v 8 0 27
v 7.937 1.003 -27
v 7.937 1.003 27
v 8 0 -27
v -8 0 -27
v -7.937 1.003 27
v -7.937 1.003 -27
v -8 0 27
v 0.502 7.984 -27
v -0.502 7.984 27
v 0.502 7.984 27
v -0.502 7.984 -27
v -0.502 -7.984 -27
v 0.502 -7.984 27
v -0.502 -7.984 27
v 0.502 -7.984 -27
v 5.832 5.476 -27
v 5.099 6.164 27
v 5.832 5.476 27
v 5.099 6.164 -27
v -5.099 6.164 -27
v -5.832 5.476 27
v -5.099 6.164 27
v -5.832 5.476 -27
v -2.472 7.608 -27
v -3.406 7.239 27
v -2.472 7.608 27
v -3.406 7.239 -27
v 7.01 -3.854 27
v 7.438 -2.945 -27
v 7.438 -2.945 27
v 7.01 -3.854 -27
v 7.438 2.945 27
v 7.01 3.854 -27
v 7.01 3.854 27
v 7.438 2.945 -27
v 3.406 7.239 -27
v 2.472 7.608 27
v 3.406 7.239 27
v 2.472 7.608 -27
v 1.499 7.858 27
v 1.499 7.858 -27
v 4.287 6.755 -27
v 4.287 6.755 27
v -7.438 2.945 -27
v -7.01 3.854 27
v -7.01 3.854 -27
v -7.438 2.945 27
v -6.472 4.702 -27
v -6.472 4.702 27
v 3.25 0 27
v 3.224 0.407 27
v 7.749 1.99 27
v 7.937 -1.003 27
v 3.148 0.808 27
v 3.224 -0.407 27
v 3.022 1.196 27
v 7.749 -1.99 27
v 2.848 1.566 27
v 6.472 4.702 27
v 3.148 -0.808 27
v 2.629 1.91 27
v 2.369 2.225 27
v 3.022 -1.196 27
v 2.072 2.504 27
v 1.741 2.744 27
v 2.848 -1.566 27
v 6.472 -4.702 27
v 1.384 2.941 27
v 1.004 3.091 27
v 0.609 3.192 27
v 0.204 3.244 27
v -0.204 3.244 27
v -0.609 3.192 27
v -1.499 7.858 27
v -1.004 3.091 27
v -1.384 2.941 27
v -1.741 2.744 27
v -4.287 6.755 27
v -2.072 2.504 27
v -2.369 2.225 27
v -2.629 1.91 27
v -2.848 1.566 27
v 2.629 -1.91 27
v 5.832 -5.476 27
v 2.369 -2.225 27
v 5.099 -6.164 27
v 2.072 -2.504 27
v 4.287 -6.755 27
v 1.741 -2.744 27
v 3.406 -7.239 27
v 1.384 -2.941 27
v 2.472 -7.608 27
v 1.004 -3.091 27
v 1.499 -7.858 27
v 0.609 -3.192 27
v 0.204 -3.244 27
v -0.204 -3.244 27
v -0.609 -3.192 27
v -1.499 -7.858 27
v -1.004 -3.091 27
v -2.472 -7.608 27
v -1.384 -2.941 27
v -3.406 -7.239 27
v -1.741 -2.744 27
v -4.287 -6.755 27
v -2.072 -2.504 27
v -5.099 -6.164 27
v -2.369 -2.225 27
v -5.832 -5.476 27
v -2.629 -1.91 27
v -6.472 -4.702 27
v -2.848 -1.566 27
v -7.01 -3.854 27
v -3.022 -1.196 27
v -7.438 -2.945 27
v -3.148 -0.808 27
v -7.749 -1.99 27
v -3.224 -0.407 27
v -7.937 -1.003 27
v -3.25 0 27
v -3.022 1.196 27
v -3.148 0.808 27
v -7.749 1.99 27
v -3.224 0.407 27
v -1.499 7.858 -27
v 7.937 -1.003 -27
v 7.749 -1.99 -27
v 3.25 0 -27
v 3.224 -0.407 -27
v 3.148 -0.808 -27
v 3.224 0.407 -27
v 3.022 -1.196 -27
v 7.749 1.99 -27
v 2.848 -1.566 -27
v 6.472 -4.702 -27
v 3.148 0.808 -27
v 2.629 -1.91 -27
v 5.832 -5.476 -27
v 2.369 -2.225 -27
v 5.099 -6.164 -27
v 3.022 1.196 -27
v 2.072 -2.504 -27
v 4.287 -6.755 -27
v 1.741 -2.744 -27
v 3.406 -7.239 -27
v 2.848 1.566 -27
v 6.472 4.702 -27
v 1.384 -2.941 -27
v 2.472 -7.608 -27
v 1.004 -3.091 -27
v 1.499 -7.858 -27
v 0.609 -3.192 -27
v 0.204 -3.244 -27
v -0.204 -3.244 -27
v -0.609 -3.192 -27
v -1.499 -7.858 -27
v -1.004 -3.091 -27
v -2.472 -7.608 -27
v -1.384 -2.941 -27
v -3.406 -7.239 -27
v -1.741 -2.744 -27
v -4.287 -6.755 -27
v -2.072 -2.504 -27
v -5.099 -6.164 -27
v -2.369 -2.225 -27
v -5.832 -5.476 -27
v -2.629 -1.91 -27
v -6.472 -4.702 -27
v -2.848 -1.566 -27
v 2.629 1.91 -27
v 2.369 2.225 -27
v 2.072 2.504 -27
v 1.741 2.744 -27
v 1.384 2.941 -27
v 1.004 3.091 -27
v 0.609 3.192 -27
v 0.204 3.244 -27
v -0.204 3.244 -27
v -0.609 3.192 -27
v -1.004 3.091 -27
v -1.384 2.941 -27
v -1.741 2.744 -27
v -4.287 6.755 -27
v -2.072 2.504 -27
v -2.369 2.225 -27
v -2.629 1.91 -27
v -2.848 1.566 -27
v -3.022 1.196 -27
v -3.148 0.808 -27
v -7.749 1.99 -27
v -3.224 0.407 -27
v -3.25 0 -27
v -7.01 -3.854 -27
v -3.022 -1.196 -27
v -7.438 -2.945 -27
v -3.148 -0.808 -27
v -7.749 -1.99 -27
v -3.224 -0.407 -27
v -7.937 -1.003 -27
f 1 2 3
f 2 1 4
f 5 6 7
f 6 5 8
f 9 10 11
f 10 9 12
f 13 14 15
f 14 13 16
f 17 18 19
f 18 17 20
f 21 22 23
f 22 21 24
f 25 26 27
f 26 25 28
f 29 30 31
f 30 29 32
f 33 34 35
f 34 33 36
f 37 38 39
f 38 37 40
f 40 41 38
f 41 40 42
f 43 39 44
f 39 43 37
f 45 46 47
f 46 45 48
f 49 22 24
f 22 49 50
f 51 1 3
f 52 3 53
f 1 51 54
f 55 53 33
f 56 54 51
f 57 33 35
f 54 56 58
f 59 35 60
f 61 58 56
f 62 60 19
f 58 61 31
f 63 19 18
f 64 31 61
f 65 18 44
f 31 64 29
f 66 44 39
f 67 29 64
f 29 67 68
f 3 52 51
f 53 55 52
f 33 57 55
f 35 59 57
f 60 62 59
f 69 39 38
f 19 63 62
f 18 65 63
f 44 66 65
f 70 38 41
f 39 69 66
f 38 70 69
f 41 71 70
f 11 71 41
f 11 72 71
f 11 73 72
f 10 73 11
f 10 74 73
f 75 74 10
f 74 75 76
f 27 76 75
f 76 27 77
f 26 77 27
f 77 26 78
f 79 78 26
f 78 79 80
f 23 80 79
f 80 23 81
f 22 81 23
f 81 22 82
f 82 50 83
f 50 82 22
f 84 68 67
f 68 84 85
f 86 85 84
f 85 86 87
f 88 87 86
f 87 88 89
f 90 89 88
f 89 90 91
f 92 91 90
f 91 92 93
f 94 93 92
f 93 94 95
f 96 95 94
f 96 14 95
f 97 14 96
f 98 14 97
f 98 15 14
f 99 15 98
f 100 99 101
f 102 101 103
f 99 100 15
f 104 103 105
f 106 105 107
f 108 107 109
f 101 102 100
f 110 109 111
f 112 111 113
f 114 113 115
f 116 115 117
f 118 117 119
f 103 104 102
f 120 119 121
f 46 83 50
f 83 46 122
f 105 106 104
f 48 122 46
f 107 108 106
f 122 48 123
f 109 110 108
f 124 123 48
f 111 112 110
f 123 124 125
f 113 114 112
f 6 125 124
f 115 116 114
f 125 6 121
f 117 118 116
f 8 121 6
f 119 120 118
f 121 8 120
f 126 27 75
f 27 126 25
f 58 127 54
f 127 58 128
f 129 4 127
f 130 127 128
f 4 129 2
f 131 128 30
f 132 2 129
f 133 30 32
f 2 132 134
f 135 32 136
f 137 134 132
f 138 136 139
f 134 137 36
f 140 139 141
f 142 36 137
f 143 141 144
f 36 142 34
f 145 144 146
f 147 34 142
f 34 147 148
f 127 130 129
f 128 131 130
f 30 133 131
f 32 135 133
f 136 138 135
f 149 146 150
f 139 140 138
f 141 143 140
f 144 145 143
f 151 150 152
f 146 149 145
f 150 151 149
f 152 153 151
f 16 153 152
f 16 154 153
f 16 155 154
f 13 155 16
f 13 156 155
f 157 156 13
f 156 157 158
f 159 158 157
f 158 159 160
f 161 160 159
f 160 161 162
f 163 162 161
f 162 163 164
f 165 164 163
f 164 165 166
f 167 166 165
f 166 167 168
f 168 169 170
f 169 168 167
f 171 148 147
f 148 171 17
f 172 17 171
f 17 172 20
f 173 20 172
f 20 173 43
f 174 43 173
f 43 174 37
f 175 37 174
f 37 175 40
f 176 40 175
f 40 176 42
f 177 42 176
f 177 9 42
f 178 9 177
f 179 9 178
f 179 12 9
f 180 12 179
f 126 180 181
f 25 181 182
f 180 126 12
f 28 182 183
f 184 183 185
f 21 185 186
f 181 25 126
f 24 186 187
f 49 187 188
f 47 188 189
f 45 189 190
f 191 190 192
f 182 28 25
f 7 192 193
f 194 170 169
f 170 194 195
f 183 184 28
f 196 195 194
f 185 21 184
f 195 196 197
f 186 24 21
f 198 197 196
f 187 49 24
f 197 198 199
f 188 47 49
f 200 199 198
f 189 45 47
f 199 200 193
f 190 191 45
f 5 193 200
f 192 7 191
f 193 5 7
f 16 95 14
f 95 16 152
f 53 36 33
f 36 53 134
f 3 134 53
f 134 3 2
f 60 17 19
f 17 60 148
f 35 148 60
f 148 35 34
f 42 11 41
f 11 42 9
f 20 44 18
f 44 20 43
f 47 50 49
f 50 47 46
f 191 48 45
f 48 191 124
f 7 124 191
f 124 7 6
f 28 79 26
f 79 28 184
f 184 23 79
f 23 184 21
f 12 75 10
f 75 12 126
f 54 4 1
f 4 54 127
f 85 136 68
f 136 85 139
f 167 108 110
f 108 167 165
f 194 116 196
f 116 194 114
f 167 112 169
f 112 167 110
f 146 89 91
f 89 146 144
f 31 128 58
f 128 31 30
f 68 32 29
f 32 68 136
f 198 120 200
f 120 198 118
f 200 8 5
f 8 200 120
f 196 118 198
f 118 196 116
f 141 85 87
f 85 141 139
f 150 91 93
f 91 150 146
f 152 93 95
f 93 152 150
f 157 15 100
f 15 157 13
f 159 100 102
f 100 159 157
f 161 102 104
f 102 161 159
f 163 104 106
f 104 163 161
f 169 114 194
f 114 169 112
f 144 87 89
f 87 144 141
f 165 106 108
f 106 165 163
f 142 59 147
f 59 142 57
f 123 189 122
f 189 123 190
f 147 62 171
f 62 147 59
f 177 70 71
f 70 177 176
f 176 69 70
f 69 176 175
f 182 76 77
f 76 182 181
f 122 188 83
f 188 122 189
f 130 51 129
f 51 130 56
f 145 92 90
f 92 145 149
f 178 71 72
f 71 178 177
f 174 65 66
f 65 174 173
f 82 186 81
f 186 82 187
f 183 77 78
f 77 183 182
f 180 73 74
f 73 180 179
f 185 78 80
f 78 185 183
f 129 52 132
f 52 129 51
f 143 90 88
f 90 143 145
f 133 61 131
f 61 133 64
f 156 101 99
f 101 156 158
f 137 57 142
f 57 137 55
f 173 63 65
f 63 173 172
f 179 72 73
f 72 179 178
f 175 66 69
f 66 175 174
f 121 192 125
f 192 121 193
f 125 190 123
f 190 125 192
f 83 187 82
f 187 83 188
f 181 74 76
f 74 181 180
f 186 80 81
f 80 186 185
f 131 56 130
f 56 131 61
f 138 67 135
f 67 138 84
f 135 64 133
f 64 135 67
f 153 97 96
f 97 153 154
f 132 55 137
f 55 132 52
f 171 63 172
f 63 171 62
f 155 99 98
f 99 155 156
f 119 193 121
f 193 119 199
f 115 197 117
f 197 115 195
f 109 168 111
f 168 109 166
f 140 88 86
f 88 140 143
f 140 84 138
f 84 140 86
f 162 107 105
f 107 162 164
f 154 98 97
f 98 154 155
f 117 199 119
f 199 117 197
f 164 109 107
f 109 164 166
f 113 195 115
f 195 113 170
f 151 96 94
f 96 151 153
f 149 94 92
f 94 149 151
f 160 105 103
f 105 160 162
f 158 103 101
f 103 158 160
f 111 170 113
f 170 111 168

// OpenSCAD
$fn = 50;


difference() {
	union() {
		translate(v = [0, 0, -27.0000000000]) {
			cylinder(h = 54, r = 8.0000000000);
		}
	}
	union() {
		translate(v = [0, 0, -100.0000000000]) {
			cylinder(h = 200, r = 3.2500000000);
		}
	}
}
